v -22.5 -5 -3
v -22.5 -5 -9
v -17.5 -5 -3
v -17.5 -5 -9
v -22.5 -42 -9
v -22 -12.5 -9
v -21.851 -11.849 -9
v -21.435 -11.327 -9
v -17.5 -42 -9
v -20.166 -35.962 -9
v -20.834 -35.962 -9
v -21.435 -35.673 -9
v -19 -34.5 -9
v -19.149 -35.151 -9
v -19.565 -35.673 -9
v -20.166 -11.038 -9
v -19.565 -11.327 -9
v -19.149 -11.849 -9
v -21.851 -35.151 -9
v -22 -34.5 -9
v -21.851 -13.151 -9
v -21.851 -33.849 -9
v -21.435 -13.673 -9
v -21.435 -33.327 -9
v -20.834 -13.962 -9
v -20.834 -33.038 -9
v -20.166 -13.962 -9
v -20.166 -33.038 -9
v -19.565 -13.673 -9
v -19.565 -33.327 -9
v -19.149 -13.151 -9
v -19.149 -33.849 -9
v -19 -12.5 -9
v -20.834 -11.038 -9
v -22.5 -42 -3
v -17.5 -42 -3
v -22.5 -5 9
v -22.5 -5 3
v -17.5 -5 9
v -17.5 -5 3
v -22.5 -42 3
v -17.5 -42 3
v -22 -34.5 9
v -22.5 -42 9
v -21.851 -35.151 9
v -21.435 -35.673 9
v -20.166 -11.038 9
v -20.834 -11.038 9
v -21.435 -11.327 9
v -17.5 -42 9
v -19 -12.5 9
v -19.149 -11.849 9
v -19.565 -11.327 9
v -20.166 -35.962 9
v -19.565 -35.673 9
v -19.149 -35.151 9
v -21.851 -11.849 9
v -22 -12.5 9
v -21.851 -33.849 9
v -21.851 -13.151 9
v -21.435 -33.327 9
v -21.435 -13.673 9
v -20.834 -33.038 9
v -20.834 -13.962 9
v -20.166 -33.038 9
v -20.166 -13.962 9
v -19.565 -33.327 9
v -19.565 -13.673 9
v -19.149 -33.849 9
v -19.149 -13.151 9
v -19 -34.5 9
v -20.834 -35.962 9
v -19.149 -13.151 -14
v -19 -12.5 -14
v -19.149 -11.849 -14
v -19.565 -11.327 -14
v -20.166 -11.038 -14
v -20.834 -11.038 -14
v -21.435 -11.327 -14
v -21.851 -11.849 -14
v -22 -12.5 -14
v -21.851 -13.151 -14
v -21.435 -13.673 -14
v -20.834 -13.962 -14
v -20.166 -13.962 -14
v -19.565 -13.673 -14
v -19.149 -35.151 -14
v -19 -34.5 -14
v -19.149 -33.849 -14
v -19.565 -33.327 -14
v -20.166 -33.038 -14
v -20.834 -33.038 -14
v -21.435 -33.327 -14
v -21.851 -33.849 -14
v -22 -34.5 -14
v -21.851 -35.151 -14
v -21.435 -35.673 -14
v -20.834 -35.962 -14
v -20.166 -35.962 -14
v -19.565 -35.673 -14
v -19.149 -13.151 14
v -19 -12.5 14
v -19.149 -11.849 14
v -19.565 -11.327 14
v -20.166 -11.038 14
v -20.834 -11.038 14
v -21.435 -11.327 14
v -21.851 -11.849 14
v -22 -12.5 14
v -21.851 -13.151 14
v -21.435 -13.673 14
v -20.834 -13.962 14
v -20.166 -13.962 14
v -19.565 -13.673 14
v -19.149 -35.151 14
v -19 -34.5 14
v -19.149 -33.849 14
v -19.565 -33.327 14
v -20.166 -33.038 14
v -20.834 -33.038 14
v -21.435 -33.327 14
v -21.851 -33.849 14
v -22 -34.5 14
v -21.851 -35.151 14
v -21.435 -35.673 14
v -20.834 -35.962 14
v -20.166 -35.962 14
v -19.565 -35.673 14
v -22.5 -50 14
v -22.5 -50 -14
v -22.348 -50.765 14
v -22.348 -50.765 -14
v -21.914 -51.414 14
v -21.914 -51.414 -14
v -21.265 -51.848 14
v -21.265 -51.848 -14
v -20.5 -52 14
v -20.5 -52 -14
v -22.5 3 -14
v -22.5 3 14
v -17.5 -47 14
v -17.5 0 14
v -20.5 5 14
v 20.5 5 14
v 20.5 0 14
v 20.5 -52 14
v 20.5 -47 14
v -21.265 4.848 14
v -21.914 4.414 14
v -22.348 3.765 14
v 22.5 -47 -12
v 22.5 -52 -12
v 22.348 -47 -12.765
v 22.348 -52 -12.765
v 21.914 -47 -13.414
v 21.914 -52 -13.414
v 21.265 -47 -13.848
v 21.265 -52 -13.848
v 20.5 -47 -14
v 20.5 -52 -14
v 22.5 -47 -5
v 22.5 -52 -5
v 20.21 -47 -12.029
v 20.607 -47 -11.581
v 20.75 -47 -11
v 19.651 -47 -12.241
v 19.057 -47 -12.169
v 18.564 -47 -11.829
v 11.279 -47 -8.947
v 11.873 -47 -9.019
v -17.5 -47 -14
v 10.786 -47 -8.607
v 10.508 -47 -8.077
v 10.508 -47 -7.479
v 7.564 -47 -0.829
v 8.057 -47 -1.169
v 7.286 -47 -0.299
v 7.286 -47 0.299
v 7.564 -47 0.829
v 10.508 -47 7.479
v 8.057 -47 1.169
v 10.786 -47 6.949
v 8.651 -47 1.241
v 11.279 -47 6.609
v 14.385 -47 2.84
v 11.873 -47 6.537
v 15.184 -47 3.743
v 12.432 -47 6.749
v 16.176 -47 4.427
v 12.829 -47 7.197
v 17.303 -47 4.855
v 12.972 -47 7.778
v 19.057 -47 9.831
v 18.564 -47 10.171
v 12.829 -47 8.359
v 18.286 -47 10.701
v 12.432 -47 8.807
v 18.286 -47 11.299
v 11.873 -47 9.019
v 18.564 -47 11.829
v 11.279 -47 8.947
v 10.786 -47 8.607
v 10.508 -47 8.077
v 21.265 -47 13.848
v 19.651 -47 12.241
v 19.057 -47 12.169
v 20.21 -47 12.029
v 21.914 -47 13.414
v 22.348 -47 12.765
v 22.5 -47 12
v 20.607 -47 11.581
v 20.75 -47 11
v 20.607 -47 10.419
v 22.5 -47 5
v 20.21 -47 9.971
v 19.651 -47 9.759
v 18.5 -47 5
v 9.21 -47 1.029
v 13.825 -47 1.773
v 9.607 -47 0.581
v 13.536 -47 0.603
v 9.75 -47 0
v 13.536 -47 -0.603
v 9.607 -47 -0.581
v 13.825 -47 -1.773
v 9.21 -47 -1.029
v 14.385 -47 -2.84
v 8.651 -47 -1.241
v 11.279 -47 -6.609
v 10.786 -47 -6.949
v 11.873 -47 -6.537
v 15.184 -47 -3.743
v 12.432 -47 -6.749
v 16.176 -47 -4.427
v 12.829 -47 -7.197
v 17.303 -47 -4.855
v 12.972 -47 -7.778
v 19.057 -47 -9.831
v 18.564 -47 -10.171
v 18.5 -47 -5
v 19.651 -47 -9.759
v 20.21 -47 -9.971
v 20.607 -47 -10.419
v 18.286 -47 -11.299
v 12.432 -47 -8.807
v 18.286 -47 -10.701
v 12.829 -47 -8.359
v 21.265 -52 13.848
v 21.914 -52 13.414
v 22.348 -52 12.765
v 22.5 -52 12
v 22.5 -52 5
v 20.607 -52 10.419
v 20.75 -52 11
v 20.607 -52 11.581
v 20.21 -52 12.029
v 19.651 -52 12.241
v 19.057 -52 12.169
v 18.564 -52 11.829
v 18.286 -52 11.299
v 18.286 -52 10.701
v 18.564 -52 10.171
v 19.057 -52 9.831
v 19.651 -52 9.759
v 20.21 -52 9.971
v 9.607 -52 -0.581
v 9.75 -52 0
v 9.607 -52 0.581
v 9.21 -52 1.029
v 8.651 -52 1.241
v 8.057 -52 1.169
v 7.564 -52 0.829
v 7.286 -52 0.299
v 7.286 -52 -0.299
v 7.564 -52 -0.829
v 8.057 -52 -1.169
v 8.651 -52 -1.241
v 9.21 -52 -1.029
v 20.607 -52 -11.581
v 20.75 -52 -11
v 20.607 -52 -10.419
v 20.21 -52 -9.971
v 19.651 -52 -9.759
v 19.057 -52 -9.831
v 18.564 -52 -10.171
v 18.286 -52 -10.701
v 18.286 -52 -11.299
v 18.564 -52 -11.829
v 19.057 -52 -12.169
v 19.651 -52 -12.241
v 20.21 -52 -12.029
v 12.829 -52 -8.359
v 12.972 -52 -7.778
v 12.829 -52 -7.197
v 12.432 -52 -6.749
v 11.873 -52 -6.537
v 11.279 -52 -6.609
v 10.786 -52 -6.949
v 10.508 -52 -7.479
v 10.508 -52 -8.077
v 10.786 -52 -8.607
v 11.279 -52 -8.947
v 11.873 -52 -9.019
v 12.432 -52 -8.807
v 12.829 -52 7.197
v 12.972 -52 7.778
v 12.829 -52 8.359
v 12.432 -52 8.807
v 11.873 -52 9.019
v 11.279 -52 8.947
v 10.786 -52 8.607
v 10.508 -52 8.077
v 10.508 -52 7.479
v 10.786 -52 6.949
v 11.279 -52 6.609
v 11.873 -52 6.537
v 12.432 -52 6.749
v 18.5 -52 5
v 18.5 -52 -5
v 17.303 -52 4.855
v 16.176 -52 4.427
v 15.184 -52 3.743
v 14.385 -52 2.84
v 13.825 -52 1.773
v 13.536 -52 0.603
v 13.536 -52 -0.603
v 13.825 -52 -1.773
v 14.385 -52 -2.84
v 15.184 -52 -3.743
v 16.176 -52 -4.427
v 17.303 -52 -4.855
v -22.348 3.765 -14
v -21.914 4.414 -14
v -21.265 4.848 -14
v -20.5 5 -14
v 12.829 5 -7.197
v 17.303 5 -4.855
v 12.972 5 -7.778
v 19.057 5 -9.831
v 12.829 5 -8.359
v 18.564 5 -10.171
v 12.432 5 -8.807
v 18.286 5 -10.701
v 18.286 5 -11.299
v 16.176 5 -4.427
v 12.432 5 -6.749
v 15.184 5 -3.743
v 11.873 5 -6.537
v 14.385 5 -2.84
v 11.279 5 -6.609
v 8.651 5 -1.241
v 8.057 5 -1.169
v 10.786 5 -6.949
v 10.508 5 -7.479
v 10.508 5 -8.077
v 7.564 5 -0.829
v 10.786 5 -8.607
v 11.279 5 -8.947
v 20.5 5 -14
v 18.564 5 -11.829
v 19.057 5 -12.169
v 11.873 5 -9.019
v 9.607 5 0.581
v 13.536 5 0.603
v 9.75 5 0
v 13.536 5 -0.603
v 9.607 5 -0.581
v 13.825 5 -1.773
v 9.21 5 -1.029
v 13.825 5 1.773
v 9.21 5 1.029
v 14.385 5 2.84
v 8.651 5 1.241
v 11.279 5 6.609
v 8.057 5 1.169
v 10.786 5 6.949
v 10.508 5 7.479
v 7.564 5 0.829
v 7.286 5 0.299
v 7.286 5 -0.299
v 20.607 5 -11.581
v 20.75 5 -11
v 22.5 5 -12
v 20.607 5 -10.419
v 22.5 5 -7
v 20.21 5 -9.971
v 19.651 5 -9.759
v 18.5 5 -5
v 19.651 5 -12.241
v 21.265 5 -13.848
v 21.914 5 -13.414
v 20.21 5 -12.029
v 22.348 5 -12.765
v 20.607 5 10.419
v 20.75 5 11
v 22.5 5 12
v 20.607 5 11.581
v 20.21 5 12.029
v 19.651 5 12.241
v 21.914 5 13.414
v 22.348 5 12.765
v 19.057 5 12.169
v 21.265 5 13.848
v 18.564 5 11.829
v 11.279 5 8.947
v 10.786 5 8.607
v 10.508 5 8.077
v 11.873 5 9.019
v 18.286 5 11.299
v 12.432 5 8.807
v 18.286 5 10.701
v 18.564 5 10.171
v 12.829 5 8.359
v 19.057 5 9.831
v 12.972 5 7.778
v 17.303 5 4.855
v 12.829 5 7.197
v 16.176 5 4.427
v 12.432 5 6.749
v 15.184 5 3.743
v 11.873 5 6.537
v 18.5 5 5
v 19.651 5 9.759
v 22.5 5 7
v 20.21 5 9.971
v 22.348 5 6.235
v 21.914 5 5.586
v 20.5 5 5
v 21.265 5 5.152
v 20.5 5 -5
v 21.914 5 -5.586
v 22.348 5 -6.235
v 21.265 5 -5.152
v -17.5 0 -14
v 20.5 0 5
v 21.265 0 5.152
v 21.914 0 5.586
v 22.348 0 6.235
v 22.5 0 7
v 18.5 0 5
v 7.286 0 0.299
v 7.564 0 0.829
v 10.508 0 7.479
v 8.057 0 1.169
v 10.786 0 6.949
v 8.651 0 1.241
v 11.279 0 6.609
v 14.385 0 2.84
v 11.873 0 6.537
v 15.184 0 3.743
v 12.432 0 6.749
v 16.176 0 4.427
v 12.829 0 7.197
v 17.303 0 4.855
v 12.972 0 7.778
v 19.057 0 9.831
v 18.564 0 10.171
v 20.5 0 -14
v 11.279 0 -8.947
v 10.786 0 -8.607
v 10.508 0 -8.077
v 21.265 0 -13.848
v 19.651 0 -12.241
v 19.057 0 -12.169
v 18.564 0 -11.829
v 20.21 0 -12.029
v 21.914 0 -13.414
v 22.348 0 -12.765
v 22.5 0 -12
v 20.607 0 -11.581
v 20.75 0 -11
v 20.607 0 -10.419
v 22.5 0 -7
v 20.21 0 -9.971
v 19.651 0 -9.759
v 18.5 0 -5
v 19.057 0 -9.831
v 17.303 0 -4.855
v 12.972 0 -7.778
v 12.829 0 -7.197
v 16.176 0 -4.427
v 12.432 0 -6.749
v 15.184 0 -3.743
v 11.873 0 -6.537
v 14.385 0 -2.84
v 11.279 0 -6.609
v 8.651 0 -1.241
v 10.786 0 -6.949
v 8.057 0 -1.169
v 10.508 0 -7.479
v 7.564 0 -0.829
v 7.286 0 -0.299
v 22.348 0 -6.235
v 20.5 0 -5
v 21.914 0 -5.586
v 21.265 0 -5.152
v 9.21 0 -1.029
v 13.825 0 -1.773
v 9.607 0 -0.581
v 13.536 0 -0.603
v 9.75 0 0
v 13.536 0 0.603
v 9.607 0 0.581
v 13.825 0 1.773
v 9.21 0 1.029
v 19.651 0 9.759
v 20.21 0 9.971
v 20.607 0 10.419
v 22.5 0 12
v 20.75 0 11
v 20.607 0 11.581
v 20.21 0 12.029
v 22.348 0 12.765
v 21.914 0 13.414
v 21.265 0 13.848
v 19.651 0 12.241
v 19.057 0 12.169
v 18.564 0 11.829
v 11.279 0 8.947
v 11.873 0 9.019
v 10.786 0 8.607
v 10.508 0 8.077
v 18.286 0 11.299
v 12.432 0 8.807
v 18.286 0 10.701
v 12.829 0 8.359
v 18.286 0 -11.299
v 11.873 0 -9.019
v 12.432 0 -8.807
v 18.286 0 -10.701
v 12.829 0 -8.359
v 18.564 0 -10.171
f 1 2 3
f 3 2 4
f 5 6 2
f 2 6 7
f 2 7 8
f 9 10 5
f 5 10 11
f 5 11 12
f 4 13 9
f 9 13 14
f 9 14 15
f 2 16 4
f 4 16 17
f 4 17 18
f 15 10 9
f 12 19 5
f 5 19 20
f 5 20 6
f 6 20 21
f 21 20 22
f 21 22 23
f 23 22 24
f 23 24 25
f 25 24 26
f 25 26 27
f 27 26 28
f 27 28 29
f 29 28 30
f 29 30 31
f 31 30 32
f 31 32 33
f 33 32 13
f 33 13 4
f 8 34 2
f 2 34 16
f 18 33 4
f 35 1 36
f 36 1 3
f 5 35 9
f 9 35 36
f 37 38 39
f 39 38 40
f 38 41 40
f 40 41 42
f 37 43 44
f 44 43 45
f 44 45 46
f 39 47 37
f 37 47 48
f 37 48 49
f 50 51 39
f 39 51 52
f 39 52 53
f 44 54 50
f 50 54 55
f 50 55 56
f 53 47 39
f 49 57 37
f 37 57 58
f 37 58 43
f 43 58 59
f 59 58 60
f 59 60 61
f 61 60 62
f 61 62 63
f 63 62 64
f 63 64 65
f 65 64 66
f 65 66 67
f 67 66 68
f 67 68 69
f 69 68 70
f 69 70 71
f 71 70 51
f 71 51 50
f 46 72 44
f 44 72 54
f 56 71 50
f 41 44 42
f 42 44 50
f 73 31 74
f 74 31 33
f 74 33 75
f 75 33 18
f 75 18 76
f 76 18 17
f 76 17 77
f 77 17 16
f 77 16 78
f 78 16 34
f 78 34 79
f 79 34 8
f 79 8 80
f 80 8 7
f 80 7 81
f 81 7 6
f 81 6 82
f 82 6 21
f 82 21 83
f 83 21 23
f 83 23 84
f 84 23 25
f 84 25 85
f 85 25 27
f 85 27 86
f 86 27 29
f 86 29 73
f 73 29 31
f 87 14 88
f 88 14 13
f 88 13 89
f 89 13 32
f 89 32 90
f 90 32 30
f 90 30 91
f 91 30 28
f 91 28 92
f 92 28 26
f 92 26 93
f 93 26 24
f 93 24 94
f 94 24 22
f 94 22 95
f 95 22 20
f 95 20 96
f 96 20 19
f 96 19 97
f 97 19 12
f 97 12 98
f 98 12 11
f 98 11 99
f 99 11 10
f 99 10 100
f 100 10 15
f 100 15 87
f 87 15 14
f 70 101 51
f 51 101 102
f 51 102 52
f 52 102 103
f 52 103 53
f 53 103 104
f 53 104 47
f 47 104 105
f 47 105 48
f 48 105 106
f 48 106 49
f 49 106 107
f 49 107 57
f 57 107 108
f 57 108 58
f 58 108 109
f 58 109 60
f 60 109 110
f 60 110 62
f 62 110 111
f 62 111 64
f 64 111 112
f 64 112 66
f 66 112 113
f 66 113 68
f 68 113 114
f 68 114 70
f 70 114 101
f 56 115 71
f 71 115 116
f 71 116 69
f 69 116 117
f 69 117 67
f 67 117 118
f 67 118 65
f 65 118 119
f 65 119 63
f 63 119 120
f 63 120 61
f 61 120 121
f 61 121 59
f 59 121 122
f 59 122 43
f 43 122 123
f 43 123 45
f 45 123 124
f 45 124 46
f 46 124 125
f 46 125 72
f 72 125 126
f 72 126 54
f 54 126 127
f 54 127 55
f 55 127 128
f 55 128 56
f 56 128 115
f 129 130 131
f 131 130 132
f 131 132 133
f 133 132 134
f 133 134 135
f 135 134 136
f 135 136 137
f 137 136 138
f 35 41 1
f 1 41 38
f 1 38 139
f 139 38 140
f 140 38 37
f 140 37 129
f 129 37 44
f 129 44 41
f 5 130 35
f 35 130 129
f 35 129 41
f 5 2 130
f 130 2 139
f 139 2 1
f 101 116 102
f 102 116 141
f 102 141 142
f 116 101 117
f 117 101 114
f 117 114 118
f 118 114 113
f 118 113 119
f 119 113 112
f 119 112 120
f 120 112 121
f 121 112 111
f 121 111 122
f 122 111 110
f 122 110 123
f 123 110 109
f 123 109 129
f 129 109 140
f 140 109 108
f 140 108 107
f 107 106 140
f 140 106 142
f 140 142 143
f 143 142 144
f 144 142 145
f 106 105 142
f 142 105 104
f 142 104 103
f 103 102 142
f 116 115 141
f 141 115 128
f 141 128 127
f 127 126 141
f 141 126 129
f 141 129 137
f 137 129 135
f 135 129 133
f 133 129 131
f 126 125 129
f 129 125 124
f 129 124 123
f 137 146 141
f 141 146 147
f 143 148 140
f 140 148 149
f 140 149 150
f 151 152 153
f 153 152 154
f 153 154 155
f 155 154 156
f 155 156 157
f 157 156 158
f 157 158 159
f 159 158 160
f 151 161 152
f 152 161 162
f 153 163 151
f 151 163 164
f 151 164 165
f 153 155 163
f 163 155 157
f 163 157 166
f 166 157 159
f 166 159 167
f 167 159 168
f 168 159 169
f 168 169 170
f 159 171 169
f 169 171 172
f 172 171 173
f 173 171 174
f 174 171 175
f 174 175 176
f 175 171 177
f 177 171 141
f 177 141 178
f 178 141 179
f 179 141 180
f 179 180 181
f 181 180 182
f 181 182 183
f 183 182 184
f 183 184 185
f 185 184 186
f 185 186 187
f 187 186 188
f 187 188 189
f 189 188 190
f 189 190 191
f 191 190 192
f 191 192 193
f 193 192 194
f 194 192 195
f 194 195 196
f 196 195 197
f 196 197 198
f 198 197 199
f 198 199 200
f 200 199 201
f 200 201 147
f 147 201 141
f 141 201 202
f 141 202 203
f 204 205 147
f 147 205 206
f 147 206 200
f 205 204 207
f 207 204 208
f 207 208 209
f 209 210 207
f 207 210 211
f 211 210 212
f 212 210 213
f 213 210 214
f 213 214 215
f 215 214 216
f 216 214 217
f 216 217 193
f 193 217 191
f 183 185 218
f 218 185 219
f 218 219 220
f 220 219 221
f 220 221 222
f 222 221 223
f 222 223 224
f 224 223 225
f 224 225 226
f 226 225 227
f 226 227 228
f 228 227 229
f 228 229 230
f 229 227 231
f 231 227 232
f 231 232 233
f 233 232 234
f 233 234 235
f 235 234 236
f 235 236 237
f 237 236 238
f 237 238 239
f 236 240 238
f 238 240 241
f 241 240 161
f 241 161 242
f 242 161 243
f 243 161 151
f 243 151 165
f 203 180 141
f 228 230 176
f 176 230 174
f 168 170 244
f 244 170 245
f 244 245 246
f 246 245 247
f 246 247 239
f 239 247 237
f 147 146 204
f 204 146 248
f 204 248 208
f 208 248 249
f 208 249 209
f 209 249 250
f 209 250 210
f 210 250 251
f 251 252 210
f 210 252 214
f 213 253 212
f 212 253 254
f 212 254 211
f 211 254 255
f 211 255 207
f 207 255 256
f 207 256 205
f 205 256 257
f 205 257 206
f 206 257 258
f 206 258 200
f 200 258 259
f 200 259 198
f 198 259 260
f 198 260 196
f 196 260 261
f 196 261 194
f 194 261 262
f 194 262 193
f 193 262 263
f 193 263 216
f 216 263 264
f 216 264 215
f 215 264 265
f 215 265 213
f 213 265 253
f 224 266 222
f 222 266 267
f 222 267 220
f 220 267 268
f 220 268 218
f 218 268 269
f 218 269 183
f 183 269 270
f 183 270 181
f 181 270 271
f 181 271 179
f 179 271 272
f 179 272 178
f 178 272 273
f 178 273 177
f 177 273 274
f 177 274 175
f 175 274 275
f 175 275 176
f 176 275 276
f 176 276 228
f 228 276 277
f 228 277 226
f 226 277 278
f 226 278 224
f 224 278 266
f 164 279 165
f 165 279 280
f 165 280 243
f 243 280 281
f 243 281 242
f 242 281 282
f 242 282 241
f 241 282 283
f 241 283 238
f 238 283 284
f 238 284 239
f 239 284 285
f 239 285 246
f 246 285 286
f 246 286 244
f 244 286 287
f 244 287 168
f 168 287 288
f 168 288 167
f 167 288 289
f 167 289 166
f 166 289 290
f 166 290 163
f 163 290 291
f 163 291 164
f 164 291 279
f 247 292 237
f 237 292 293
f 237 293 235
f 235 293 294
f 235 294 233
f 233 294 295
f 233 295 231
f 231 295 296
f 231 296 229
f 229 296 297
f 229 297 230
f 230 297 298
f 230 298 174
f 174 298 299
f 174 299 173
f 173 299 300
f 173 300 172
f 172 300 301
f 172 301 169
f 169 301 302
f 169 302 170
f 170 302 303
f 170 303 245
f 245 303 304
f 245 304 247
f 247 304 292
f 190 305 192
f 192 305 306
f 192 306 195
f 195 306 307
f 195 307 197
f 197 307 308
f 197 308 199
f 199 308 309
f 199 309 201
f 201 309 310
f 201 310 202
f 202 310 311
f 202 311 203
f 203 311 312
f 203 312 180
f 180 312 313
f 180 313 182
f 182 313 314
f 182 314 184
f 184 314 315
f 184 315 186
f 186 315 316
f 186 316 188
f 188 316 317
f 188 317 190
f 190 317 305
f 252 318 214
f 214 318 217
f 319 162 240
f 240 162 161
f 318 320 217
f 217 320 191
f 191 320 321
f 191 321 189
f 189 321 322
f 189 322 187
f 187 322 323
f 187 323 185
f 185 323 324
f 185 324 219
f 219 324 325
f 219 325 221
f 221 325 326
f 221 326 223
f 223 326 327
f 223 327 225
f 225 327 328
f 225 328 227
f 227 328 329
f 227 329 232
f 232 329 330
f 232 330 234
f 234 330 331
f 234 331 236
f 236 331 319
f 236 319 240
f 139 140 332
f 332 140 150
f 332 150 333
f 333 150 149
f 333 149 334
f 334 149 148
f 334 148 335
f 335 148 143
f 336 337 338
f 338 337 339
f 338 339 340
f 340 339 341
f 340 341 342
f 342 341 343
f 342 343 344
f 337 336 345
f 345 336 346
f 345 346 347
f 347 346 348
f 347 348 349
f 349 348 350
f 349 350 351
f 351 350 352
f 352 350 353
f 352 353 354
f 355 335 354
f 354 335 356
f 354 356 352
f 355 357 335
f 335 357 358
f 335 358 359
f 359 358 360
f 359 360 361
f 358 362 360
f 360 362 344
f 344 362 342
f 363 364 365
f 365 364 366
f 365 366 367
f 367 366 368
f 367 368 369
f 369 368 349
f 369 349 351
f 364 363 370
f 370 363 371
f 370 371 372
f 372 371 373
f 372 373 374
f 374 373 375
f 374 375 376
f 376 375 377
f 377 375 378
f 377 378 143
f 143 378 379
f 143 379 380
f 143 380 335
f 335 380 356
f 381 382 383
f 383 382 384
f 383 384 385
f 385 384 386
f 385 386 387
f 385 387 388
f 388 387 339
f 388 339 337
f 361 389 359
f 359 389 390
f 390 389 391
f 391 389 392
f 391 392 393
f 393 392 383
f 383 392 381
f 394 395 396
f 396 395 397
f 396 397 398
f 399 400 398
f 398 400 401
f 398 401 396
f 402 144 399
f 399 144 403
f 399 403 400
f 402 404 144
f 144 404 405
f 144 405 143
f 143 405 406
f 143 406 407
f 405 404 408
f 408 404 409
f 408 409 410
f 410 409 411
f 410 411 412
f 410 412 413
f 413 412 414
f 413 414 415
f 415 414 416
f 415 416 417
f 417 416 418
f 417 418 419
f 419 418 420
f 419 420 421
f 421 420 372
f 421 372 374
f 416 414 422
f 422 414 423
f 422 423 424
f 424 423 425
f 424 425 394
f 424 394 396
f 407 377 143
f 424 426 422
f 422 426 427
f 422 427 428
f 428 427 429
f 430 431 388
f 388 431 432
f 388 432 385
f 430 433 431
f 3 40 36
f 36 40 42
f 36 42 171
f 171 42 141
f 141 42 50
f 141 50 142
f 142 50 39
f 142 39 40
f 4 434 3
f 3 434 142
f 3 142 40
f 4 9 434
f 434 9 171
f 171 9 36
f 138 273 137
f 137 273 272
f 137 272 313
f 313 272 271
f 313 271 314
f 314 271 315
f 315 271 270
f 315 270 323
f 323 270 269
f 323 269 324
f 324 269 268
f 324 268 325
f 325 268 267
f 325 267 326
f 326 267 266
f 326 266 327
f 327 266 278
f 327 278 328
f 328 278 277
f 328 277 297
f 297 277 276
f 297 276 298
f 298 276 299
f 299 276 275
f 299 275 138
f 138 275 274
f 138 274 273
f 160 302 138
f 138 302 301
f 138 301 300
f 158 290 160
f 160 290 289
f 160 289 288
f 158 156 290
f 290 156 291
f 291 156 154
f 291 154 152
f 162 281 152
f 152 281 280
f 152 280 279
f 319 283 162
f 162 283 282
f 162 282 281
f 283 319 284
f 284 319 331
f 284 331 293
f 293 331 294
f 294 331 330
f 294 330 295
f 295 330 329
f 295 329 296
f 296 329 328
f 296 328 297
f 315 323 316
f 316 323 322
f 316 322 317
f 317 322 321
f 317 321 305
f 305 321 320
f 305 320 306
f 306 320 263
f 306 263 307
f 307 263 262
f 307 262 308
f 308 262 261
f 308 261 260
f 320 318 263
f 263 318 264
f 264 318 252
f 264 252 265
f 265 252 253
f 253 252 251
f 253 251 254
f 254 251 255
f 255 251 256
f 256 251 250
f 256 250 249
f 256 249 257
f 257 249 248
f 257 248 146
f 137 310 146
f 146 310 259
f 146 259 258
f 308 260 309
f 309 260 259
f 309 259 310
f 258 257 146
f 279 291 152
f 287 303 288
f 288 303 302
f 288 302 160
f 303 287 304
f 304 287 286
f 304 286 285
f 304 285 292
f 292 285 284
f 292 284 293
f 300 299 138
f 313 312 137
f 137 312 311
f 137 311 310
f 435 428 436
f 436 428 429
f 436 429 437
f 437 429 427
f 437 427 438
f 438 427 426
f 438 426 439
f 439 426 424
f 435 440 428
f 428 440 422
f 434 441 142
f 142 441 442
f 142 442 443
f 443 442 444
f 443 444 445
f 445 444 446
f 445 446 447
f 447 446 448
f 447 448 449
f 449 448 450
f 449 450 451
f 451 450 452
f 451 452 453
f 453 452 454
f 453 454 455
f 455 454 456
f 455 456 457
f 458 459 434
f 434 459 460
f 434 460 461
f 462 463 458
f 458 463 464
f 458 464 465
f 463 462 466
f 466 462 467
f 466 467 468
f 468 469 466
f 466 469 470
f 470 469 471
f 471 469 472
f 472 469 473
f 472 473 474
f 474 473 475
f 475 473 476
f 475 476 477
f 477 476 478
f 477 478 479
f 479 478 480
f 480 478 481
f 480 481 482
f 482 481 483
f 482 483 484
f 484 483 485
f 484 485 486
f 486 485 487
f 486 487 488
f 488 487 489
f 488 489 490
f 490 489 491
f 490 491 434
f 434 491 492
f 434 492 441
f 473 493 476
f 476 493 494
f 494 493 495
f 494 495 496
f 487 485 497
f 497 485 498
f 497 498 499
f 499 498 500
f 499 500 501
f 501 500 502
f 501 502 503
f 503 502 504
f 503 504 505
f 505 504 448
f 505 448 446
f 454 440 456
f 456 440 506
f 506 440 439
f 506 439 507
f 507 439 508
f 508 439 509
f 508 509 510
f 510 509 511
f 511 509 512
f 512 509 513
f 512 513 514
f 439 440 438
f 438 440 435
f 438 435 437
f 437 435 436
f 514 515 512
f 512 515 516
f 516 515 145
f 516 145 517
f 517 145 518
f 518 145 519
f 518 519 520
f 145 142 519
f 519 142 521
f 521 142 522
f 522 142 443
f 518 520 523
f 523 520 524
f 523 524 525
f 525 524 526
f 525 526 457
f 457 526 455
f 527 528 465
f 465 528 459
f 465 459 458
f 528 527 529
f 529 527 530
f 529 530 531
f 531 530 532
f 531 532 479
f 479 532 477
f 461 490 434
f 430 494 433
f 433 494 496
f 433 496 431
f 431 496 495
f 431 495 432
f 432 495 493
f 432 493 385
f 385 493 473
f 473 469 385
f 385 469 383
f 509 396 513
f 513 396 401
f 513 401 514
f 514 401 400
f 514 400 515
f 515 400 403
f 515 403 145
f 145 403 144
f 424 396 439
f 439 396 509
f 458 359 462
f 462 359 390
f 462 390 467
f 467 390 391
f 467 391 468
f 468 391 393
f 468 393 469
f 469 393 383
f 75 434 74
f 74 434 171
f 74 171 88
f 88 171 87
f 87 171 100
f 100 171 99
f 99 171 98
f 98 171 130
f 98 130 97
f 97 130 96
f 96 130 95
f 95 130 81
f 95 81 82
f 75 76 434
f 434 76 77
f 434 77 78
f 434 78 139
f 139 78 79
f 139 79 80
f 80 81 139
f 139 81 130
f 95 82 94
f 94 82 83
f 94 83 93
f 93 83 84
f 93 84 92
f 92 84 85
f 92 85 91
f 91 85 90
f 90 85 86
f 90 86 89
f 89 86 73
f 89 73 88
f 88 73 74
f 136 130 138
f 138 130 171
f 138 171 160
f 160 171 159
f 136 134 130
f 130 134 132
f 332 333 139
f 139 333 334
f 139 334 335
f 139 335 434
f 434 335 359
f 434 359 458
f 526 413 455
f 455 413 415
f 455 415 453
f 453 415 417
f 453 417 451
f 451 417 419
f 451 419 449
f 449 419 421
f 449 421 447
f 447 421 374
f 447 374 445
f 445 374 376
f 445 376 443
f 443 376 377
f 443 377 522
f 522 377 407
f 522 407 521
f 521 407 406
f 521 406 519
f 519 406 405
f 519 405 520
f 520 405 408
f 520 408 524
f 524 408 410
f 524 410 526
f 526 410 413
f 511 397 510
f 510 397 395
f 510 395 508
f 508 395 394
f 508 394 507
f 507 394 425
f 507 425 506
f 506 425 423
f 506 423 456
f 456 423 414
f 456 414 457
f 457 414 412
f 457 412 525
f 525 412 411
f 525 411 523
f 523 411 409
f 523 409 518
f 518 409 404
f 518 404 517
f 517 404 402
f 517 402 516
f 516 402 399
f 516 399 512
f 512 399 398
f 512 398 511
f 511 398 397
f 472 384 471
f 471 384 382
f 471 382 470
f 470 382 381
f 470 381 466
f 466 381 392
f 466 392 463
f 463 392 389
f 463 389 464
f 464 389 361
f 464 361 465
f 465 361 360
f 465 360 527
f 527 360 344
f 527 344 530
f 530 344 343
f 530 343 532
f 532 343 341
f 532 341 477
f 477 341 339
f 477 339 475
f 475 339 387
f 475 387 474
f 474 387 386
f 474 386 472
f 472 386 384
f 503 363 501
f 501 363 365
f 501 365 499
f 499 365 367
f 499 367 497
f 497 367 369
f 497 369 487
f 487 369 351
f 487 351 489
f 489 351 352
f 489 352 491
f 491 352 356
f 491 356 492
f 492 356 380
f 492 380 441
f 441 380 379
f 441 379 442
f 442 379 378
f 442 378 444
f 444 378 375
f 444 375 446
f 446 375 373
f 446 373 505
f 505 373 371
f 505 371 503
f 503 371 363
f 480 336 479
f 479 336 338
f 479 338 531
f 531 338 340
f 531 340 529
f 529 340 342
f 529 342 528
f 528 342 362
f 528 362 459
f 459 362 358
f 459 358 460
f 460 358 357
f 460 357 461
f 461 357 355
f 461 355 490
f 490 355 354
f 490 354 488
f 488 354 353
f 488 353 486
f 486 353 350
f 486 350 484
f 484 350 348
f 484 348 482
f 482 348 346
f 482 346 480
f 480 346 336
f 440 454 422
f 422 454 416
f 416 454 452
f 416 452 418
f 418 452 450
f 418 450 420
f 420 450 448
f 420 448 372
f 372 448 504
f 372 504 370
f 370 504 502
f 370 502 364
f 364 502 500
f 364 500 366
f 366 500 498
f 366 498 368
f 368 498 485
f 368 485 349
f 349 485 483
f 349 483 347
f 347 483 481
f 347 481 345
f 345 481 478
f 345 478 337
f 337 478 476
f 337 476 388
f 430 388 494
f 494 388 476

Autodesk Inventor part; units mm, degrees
ref_plane "YZ Plane" through (0, 0, 0) normal (1, 0, 0) x (0, 1, 0)
ref_plane "XZ Plane" through (0, 0, 0) normal (0, 1, 0) x (-1, 0, 0)
ref_plane "XY Plane" through (0, 0, 0) normal (0, 0, 1) x (1, 0, 0)
sketch "스케치1" plane through (0, 0, 0) normal (0, 1, 0) x (-1, 0, 0)
  line L0 (22.5, -14) -> (-22.5, -14)
  line L1 (-22.5, -14) -> (-22.5, 14)
  line L2 (-22.5, 14) -> (22.5, 14)
  line L3 (22.5, 14) -> (22.5, -14)
  point P0 (0, 0)
  dimension "d0" = 28
  dimension "d1" = 45
  dimension "d2" = 14
  dimension "d3" = 22.5
extrude "돌출1" add sketch "스케치1" along normal blind 5
sketch "스케치2" plane through (0, 5, 0) normal (0, 1, 0) x (1, 0, 0)
  circle A0 centre (18.5, 0) radius 5
  line L0 (18.5, 5) -> (22.5, 5)
  line L1 (22.5, 5) -> (22.5, -5)
  line L2 (22.5, -5) -> (18.5, -5)
  line L3 (18.5, -5) -> (18.5, 5)
  line L4 (22.5, -14) -> (22.5, 14) projected
  point P0 (0, 0)
  dimension "d6" = 10
  dimension "d7" = 0
  dimension "d8" = 10
  dimension "d9" = 5
  dimension "d10" = 4
  dimension "d11" = 0
extrude "돌출2" cut sketch "스케치2" against normal blind 100
sketch "스케치3" plane through (0, 5, 0) normal (0, 1, 0) x (1, 0, 0)
  circle A0 centre (19.5, 11) radius 1.25
  line L0 (22.5, 5) -> (22.5, 14) projected
  line L1 (22.5, 14) -> (-22.5, 14) projected
  line L2 (0, 0) -> (4.9885, 0)
  circle A1 centre (19.5, -11) radius 1.25
  circle A2 centre (8.5, 0) radius 1.25
  line L3 (-22.5, -14) -> (22.5, -14) projected
  circle A3 centre (11.722, -7.778) radius 1.25
  line L4 (22.5, -14) -> (22.5, -5) projected
  circle A4 centre (11.722, 7.778) radius 1.25
  dimension "d14" = 2.5
  dimension "d15" = 3
  dimension "d16" = 3
  dimension "d17" = 14
  dimension "d18" = 2.5
  dimension "d19" = 14
  dimension "d20" = 10.778
  dimension "d21" = 6.222
  dimension "d22" = 2.5
extrude "돌출3" cut sketch "스케치3" against normal blind 5
fillet "모깎기1" radius 2 4 edges at (22.5, 2.5, -14) (22.5, 2.5, 14) (22.5, 2.5, -5) (22.5, 2.5, 5)
sketch "스케치4" plane through (0, 0, 0) normal (0, -1, 0) x (1, 0, 0)
  line L0 (-22.5, -14) -> (20.5, -14) projected
  line L1 (20.5, 14) -> (-22.5, 14) projected
  line L2 (-22.5, -14) -> (-17.5, -14)
  line L3 (-17.5, -14) -> (-17.5, 14)
  line L4 (-17.5, 14) -> (-22.5, 14)
  line L5 (-22.5, 14) -> (-22.5, -14)
  point P0 (0, 0)
  dimension "d26" = 5
extrude "돌출4" add sketch "스케치4" along normal blind 52
fillet "모깎기2" radius 2 1 edges at (-22.5, 5, 0)
sketch "스케치5" plane through (-17.5, 0, 14) normal (1, 0, 0) x (0, 0, -1)
  point P0 (14, 0)
sketch "스케치6" plane through (-17.5, 0, 14) normal (1, 0, 0) x (0, 0, -1)
  line L0 (28, 0) -> (28, -52) projected
  line L1 (0, 0) -> (0, -52) projected
  line L2 (28, -52) -> (0, -52)
  line L3 (0, -52) -> (0, -47)
  line L4 (0, -47) -> (28, -47)
  line L5 (28, -47) -> (28, -52)
  point P0 (14, 0)
  dimension "d30" = 5
extrude "돌출5" add sketch "스케치6" along normal blind 40
sketch "스케치7" plane through (0, 0, 0) normal (0, -1, 0) x (1, 0, 0)
  circle A0 centre (19.5, -11) radius 1.25 projected
  circle A1 centre (19.5, -11) radius 1.25
  circle A2 centre (11.722, -7.778) radius 1.25 projected
  circle A3 centre (11.722, -7.778) radius 1.25
  circle A4 centre (8.5, 0) radius 1.25 projected
  circle A5 centre (8.5, 0) radius 1.25
  circle A6 centre (11.722, 7.778) radius 1.25 projected
  circle A7 centre (11.722, 7.778) radius 1.25
  circle A8 centre (19.5, 11) radius 1.25 projected
  circle A9 centre (19.5, 11) radius 1.25
  arc A10 (18.5, 5) -> (18.5, -5) centre (18.5, 0) ccw projected
  circle A11 centre (18.5, 0) radius 5
  line L0 (18.5, -5) -> (29.1098, -5)
  line L1 (29.1098, -5) -> (29.1098, 5)
  line L2 (29.1098, 5) -> (18.5, 5)
  line L3 (18.5, 5) -> (18.5, -5)
  point P0 (0, 0)
extrude "돌출6" cut sketch "스케치7" along normal blind 200
fillet "모깎기4" radius 2 2 edges at (22.5, -49.5, 14) (22.5, -49.5, -14)
fillet "모깎기5" radius 2 1 edges at (-22.5, -52, 0)
sketch "스케치10" plane through (20.5, 0, 14) normal (0, 0, 1) x (1, 0, 0)
  circle A0 centre (-41, -12.5) radius 1.5
  circle A1 centre (-41, -34.5) radius 1.5
  line L0 (-32.0554, -23.5) -> (-2.5003, -23.5)
  line L1 (-43, 3) -> (-43, -50) projected
  point P0 (-20.5, 0)
  dimension "d54" = 3
  dimension "d55" = 3
  dimension "d56" = 22
  dimension "d57" = 23.5
  dimension "d58" = 11
  dimension "d59" = 2
  dimension "d60" = 2
extrude "돌출9" cut sketch "스케치10" against normal blind 80
sketch "스케치11" plane through (-17.5, 0, 14) normal (1, 0, 0) x (0, 0, -1)
  line L0 (5, -42) -> (23, -42)
  line L1 (23, -42) -> (23, -5)
  line L2 (23, -5) -> (5, -5)
  line L3 (5, -5) -> (5, -42)
  line L4 (0, 0) -> (0, -47) projected
  line L5 (28, 0) -> (28, -47) projected
  line L6 (19, 0) -> (9, 0) projected
  line L7 (9, -47) -> (19, -47) projected
  line L8 (11, -42) -> (17, -42)
  line L9 (17, -42) -> (17, -5)
  line L10 (17, -5) -> (11, -5)
  line L11 (11, -5) -> (11, -42)
  point P0 (14, 0)
  dimension "d63" = 5
  dimension "d64" = 5
  dimension "d65" = 5
  dimension "d66" = 5
  dimension "d67" = 6
  dimension "d68" = 6
extrude "돌출10" cut sketch "스케치11" against normal blind 80 contours L3 L2 L11 L0 | L9 L2 L1 L0
sketch "스케치12" plane through (-17.5, -42, 3) normal (0, 0, 1) x (1, 0, 0)
  circle A0 centre (-3, 7.5) radius 1.5 projected
  circle A1 centre (-3, 7.5) radius 1.5
  circle A2 centre (-3, 29.5) radius 1.5 projected
  circle A3 centre (-3, 29.5) radius 1.5
  point P0 (17.5, 42)
extrude "돌출11" add sketch "스케치12" against normal blind 6
properties part number "elbow_gear"
